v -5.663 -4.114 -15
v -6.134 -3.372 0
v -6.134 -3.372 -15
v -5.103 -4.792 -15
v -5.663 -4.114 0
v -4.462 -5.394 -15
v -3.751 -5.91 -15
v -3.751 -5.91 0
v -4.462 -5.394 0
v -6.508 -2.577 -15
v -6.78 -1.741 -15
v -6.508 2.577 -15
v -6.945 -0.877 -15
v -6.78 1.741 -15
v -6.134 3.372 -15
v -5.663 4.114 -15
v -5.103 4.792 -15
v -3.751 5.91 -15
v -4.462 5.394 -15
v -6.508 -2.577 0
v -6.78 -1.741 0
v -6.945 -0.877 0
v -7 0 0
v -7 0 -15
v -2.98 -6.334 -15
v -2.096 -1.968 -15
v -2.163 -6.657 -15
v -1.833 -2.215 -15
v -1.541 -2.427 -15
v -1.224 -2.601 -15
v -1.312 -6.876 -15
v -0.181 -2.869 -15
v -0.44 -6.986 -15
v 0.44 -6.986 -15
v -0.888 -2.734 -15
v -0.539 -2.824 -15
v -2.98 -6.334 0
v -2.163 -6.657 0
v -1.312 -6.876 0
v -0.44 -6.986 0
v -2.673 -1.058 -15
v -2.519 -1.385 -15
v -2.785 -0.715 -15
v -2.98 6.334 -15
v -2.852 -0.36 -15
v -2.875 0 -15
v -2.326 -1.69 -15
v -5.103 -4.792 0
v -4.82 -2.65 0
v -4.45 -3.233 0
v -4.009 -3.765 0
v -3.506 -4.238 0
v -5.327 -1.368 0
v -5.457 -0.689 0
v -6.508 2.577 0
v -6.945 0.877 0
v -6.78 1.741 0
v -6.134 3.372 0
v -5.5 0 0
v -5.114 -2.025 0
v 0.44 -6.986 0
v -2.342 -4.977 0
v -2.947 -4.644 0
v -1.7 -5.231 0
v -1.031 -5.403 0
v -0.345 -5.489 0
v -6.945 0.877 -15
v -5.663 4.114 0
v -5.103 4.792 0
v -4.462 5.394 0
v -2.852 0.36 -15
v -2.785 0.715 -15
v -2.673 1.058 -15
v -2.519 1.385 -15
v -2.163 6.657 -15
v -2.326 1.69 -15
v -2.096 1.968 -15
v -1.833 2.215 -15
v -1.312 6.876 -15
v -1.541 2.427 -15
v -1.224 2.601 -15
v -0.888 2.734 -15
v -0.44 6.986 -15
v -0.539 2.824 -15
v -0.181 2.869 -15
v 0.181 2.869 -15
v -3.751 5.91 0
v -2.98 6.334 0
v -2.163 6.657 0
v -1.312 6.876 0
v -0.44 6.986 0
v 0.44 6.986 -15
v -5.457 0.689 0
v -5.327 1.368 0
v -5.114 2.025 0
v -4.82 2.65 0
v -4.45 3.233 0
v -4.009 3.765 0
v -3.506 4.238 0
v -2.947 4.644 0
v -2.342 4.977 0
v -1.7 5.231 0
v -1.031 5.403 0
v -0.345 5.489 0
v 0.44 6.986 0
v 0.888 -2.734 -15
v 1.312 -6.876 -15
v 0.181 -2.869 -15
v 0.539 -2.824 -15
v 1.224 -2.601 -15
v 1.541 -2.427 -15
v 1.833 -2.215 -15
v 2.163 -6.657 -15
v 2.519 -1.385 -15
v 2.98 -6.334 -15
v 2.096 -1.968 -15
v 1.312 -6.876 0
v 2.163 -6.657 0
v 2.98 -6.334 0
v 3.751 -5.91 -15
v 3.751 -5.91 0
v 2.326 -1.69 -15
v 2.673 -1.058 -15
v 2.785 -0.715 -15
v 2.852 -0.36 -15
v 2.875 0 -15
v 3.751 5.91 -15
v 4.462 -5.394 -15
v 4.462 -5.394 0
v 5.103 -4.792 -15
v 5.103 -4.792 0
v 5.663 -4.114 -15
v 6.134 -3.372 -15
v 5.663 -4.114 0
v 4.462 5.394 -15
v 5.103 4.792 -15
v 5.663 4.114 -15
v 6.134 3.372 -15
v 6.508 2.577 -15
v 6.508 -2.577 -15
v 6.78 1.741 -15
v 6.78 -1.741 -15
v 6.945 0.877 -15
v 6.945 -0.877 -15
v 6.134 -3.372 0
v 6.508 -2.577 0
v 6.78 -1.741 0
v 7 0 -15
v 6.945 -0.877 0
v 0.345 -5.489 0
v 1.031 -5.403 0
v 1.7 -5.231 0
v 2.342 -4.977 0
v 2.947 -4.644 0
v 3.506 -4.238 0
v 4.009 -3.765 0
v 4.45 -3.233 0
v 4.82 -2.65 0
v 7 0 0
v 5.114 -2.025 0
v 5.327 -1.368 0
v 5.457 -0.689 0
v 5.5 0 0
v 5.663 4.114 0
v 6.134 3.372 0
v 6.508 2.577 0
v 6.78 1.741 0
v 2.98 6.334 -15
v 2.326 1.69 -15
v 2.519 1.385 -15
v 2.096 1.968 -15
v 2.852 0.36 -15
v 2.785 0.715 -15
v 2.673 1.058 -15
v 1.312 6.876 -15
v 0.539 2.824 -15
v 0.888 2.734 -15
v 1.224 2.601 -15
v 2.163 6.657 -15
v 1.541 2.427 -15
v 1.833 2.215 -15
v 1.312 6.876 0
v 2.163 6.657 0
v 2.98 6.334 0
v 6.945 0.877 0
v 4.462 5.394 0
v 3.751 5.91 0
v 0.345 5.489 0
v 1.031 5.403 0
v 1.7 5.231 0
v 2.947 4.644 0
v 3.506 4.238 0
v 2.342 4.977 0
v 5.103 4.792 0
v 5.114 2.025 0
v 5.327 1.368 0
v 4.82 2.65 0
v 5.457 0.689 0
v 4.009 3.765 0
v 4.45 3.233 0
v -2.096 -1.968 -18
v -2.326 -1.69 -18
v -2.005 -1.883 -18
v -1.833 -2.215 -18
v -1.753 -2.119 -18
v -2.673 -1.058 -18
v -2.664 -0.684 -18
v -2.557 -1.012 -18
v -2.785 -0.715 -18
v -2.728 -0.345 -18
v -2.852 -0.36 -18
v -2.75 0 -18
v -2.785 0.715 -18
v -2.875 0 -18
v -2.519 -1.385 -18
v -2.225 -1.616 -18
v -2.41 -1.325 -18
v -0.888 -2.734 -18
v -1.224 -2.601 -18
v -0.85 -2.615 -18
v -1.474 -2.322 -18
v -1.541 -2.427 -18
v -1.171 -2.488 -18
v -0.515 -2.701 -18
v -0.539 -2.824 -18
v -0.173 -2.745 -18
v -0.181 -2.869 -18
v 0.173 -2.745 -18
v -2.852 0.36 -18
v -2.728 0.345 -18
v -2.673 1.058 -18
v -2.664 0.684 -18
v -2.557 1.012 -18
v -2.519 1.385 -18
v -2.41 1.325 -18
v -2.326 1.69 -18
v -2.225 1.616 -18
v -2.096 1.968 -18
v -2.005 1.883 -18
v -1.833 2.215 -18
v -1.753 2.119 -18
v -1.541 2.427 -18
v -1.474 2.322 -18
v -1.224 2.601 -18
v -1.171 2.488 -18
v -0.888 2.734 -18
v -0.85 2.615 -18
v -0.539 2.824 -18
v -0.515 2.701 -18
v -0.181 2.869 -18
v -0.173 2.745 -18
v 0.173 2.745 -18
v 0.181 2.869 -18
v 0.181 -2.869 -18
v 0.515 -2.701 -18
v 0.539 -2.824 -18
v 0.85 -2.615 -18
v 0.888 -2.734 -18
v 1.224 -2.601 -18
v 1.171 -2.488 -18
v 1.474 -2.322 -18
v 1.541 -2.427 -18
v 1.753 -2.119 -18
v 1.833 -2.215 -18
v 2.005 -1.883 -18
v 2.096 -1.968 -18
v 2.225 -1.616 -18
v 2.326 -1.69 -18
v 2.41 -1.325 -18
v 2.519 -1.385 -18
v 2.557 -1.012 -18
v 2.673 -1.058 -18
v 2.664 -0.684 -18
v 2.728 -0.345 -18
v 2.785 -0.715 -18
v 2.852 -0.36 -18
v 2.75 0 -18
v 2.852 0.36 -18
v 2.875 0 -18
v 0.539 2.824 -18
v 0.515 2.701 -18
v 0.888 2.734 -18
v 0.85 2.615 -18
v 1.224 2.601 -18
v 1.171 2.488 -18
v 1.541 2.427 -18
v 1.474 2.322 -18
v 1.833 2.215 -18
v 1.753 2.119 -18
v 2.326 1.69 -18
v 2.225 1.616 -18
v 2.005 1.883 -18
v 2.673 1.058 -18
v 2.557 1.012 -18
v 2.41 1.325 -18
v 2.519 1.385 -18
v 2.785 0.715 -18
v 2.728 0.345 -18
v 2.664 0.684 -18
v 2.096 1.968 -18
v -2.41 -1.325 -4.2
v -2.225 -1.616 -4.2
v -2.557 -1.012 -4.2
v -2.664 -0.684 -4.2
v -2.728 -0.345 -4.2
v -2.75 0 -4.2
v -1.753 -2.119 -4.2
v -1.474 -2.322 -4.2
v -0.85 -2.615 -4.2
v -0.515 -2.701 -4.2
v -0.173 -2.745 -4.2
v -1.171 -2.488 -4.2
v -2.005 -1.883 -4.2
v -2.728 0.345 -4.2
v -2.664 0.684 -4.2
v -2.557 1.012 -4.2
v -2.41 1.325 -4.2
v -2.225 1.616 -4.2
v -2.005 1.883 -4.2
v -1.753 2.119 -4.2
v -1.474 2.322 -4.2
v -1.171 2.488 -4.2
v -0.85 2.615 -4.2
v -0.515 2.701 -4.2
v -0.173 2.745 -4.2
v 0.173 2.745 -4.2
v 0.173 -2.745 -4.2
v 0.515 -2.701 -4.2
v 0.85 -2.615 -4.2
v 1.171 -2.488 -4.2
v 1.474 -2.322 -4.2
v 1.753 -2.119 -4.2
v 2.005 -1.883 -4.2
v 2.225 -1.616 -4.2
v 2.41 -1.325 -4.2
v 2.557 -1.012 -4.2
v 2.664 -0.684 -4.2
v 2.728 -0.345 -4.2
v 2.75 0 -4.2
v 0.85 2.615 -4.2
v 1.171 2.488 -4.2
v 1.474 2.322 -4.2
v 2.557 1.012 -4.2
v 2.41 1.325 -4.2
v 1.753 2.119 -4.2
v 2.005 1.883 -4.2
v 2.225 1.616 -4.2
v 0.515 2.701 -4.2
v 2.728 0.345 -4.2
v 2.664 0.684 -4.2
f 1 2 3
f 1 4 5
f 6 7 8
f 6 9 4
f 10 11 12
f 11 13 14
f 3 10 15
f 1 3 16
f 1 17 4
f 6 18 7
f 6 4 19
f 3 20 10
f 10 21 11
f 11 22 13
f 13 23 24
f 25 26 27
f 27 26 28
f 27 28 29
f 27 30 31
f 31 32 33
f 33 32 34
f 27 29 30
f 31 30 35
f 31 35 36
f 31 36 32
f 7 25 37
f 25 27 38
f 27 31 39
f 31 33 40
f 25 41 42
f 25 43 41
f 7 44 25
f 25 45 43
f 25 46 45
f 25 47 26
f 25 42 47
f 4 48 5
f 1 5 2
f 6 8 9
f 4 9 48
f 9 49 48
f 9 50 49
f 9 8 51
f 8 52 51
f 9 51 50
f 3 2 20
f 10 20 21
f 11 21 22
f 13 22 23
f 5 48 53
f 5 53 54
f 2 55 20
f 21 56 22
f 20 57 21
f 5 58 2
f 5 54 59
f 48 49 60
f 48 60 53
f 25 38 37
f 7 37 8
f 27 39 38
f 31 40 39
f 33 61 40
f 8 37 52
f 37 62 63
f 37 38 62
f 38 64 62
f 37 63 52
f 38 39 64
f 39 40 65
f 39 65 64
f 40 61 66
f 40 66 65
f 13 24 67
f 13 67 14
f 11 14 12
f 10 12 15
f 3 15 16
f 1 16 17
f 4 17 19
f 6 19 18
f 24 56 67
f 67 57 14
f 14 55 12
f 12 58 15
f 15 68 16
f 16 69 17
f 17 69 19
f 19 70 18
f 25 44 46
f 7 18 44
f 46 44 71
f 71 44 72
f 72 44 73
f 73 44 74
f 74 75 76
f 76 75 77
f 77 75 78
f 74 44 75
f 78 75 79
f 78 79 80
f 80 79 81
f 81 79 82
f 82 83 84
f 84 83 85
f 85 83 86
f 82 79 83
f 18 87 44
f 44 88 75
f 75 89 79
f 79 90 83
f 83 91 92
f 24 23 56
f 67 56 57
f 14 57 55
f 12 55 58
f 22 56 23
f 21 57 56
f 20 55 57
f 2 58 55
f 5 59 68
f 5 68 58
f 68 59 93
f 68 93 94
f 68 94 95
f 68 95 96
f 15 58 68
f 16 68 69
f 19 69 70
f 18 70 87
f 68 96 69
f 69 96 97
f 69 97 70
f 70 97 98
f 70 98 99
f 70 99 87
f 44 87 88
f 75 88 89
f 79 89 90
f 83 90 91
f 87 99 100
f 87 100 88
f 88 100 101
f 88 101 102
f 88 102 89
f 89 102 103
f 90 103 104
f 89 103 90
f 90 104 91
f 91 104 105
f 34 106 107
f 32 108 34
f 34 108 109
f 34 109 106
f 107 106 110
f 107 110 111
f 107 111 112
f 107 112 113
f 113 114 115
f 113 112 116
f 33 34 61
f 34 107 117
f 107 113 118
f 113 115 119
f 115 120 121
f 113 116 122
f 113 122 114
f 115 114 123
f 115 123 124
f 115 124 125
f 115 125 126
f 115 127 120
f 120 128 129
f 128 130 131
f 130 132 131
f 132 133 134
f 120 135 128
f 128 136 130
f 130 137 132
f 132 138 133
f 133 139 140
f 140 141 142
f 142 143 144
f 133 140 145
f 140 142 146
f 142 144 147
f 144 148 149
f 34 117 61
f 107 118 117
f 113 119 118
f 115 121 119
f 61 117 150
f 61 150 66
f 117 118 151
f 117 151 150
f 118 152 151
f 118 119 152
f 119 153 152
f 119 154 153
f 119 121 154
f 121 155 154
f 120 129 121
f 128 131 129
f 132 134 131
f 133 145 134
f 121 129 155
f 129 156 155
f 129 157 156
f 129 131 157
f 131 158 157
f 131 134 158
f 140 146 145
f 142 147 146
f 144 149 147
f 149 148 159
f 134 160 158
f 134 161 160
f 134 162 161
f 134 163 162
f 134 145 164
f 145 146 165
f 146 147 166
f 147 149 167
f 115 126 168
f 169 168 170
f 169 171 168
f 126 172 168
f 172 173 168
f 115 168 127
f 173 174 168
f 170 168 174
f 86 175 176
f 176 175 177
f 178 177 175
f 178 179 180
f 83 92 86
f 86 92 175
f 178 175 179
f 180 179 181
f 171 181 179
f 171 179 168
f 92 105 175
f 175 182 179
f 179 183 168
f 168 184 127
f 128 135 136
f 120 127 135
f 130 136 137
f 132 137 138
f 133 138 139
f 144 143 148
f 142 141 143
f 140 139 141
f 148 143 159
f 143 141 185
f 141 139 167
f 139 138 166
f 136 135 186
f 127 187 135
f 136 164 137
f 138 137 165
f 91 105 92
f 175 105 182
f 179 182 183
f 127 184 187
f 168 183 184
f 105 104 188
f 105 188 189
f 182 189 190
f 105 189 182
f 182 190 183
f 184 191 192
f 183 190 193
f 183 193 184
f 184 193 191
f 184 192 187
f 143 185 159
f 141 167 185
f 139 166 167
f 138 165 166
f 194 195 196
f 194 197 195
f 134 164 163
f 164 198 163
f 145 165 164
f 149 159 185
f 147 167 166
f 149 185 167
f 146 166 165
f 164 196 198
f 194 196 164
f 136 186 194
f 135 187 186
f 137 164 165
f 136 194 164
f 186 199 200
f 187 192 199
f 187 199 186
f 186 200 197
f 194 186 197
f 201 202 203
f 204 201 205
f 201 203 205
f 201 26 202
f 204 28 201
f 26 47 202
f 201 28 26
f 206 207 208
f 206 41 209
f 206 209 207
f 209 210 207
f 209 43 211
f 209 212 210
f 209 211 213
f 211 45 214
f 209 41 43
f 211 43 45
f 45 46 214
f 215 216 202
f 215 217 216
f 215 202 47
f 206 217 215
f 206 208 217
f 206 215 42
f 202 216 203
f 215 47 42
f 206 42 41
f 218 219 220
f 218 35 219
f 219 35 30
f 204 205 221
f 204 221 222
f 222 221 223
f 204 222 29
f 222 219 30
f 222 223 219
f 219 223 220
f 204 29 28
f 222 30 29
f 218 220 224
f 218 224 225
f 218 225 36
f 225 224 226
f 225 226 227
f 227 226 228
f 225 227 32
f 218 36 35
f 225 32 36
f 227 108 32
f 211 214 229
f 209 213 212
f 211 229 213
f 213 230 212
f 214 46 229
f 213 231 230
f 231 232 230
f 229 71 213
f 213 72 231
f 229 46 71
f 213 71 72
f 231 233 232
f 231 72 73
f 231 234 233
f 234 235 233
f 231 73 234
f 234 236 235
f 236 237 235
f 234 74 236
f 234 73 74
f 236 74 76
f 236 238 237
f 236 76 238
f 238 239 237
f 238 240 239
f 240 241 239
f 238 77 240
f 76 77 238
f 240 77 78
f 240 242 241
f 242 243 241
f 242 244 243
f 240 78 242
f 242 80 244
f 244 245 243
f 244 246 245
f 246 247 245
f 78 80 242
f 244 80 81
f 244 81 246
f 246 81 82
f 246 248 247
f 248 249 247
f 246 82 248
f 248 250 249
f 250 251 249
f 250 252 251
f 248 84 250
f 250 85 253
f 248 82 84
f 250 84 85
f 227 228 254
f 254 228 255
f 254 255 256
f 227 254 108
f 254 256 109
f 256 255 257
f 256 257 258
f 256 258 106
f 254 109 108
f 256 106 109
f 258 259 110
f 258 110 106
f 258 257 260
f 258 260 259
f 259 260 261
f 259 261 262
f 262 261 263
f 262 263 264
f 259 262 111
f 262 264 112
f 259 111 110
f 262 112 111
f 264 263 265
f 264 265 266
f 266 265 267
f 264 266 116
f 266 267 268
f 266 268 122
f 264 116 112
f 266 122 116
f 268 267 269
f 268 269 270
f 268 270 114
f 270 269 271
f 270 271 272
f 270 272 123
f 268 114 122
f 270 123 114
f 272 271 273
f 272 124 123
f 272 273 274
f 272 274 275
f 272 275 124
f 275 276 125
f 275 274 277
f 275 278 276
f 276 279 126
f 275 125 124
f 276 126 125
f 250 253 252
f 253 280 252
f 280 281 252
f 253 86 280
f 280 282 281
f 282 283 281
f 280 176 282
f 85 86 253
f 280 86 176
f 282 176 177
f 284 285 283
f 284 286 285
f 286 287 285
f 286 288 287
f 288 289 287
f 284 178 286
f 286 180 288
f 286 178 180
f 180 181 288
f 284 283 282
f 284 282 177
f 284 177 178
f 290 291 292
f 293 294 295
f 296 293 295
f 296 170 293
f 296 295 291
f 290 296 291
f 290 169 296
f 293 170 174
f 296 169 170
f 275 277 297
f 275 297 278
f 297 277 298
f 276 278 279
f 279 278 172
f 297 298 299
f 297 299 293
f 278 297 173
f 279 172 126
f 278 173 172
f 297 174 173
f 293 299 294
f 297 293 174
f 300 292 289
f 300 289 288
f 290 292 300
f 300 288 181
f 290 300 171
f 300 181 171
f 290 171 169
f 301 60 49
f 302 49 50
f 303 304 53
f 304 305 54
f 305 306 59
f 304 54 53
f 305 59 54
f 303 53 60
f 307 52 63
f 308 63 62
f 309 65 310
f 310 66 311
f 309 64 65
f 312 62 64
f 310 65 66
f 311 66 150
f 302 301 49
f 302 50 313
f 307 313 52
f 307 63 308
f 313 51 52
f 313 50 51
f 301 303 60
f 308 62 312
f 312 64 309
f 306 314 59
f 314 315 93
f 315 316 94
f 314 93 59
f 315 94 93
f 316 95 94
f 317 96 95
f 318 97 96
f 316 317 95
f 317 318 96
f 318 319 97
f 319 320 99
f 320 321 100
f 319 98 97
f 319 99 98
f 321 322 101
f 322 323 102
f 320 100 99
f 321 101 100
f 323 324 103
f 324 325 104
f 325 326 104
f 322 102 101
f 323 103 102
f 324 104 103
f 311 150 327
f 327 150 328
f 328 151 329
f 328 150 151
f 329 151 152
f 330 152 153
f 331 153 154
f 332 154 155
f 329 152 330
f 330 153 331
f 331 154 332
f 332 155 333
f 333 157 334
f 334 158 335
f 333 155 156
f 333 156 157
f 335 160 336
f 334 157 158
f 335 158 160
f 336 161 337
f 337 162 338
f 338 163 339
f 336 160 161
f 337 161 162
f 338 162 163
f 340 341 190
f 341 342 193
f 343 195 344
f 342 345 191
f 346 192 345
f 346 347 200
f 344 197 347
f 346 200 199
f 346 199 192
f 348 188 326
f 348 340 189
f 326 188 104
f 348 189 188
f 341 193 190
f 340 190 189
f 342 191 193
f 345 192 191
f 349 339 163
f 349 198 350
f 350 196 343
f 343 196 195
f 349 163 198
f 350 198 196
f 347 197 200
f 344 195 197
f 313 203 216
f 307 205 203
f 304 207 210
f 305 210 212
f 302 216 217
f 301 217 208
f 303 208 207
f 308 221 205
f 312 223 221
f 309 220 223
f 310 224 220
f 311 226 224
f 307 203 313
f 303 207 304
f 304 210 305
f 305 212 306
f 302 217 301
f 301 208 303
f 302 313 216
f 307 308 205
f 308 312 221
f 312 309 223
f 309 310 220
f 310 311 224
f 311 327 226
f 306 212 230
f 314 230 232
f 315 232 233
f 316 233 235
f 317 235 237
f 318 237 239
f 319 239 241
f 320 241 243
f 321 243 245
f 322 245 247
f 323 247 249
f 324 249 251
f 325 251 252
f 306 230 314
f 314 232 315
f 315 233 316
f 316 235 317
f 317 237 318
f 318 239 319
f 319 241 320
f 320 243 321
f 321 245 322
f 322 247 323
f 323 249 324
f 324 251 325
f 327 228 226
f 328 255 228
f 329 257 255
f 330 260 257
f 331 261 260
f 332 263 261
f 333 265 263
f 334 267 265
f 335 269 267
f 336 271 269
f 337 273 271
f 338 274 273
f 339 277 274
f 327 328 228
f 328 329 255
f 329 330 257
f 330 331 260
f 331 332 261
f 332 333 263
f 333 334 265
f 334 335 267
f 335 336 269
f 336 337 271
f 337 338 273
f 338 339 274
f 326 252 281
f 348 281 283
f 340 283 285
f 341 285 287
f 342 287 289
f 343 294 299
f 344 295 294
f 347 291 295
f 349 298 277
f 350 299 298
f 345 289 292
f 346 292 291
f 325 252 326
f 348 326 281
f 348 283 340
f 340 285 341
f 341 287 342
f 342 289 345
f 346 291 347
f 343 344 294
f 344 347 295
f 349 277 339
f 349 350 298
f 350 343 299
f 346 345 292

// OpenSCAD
$fn = 50;


difference() {
	union() {
		translate(v = [0, 0, -15.0000000000]) {
			cylinder(h = 15, r = 7.0000000000);
		}
		#translate(v = [0, 0, -18.0000000000]) {
			cylinder(h = 18, r = 2.8750000000);
		}
	}
	union() {
		translate(v = [0, 0, 0]) {
			rotate(a = [0, 0, 0]) {
				difference() {
					union() {
						translate(v = [0, 0, -18.0000000000]) {
							cylinder(h = 18, r = 2.2500000000);
						}
						translate(v = [0, 0, -4.2000000000]) {
							cylinder(h = 4.2000000000, r1 = 2.7500000000, r2 = 5.5000000000);
						}
						translate(v = [0, 0, -18.0000000000]) {
							cylinder(h = 18, r = 2.7500000000);
						}
						translate(v = [0, 0, -18.0000000000]) {
							cylinder(h = 18, r = 2.2500000000);
						}
					}
					union();
				}
			}
		}
	}
}
